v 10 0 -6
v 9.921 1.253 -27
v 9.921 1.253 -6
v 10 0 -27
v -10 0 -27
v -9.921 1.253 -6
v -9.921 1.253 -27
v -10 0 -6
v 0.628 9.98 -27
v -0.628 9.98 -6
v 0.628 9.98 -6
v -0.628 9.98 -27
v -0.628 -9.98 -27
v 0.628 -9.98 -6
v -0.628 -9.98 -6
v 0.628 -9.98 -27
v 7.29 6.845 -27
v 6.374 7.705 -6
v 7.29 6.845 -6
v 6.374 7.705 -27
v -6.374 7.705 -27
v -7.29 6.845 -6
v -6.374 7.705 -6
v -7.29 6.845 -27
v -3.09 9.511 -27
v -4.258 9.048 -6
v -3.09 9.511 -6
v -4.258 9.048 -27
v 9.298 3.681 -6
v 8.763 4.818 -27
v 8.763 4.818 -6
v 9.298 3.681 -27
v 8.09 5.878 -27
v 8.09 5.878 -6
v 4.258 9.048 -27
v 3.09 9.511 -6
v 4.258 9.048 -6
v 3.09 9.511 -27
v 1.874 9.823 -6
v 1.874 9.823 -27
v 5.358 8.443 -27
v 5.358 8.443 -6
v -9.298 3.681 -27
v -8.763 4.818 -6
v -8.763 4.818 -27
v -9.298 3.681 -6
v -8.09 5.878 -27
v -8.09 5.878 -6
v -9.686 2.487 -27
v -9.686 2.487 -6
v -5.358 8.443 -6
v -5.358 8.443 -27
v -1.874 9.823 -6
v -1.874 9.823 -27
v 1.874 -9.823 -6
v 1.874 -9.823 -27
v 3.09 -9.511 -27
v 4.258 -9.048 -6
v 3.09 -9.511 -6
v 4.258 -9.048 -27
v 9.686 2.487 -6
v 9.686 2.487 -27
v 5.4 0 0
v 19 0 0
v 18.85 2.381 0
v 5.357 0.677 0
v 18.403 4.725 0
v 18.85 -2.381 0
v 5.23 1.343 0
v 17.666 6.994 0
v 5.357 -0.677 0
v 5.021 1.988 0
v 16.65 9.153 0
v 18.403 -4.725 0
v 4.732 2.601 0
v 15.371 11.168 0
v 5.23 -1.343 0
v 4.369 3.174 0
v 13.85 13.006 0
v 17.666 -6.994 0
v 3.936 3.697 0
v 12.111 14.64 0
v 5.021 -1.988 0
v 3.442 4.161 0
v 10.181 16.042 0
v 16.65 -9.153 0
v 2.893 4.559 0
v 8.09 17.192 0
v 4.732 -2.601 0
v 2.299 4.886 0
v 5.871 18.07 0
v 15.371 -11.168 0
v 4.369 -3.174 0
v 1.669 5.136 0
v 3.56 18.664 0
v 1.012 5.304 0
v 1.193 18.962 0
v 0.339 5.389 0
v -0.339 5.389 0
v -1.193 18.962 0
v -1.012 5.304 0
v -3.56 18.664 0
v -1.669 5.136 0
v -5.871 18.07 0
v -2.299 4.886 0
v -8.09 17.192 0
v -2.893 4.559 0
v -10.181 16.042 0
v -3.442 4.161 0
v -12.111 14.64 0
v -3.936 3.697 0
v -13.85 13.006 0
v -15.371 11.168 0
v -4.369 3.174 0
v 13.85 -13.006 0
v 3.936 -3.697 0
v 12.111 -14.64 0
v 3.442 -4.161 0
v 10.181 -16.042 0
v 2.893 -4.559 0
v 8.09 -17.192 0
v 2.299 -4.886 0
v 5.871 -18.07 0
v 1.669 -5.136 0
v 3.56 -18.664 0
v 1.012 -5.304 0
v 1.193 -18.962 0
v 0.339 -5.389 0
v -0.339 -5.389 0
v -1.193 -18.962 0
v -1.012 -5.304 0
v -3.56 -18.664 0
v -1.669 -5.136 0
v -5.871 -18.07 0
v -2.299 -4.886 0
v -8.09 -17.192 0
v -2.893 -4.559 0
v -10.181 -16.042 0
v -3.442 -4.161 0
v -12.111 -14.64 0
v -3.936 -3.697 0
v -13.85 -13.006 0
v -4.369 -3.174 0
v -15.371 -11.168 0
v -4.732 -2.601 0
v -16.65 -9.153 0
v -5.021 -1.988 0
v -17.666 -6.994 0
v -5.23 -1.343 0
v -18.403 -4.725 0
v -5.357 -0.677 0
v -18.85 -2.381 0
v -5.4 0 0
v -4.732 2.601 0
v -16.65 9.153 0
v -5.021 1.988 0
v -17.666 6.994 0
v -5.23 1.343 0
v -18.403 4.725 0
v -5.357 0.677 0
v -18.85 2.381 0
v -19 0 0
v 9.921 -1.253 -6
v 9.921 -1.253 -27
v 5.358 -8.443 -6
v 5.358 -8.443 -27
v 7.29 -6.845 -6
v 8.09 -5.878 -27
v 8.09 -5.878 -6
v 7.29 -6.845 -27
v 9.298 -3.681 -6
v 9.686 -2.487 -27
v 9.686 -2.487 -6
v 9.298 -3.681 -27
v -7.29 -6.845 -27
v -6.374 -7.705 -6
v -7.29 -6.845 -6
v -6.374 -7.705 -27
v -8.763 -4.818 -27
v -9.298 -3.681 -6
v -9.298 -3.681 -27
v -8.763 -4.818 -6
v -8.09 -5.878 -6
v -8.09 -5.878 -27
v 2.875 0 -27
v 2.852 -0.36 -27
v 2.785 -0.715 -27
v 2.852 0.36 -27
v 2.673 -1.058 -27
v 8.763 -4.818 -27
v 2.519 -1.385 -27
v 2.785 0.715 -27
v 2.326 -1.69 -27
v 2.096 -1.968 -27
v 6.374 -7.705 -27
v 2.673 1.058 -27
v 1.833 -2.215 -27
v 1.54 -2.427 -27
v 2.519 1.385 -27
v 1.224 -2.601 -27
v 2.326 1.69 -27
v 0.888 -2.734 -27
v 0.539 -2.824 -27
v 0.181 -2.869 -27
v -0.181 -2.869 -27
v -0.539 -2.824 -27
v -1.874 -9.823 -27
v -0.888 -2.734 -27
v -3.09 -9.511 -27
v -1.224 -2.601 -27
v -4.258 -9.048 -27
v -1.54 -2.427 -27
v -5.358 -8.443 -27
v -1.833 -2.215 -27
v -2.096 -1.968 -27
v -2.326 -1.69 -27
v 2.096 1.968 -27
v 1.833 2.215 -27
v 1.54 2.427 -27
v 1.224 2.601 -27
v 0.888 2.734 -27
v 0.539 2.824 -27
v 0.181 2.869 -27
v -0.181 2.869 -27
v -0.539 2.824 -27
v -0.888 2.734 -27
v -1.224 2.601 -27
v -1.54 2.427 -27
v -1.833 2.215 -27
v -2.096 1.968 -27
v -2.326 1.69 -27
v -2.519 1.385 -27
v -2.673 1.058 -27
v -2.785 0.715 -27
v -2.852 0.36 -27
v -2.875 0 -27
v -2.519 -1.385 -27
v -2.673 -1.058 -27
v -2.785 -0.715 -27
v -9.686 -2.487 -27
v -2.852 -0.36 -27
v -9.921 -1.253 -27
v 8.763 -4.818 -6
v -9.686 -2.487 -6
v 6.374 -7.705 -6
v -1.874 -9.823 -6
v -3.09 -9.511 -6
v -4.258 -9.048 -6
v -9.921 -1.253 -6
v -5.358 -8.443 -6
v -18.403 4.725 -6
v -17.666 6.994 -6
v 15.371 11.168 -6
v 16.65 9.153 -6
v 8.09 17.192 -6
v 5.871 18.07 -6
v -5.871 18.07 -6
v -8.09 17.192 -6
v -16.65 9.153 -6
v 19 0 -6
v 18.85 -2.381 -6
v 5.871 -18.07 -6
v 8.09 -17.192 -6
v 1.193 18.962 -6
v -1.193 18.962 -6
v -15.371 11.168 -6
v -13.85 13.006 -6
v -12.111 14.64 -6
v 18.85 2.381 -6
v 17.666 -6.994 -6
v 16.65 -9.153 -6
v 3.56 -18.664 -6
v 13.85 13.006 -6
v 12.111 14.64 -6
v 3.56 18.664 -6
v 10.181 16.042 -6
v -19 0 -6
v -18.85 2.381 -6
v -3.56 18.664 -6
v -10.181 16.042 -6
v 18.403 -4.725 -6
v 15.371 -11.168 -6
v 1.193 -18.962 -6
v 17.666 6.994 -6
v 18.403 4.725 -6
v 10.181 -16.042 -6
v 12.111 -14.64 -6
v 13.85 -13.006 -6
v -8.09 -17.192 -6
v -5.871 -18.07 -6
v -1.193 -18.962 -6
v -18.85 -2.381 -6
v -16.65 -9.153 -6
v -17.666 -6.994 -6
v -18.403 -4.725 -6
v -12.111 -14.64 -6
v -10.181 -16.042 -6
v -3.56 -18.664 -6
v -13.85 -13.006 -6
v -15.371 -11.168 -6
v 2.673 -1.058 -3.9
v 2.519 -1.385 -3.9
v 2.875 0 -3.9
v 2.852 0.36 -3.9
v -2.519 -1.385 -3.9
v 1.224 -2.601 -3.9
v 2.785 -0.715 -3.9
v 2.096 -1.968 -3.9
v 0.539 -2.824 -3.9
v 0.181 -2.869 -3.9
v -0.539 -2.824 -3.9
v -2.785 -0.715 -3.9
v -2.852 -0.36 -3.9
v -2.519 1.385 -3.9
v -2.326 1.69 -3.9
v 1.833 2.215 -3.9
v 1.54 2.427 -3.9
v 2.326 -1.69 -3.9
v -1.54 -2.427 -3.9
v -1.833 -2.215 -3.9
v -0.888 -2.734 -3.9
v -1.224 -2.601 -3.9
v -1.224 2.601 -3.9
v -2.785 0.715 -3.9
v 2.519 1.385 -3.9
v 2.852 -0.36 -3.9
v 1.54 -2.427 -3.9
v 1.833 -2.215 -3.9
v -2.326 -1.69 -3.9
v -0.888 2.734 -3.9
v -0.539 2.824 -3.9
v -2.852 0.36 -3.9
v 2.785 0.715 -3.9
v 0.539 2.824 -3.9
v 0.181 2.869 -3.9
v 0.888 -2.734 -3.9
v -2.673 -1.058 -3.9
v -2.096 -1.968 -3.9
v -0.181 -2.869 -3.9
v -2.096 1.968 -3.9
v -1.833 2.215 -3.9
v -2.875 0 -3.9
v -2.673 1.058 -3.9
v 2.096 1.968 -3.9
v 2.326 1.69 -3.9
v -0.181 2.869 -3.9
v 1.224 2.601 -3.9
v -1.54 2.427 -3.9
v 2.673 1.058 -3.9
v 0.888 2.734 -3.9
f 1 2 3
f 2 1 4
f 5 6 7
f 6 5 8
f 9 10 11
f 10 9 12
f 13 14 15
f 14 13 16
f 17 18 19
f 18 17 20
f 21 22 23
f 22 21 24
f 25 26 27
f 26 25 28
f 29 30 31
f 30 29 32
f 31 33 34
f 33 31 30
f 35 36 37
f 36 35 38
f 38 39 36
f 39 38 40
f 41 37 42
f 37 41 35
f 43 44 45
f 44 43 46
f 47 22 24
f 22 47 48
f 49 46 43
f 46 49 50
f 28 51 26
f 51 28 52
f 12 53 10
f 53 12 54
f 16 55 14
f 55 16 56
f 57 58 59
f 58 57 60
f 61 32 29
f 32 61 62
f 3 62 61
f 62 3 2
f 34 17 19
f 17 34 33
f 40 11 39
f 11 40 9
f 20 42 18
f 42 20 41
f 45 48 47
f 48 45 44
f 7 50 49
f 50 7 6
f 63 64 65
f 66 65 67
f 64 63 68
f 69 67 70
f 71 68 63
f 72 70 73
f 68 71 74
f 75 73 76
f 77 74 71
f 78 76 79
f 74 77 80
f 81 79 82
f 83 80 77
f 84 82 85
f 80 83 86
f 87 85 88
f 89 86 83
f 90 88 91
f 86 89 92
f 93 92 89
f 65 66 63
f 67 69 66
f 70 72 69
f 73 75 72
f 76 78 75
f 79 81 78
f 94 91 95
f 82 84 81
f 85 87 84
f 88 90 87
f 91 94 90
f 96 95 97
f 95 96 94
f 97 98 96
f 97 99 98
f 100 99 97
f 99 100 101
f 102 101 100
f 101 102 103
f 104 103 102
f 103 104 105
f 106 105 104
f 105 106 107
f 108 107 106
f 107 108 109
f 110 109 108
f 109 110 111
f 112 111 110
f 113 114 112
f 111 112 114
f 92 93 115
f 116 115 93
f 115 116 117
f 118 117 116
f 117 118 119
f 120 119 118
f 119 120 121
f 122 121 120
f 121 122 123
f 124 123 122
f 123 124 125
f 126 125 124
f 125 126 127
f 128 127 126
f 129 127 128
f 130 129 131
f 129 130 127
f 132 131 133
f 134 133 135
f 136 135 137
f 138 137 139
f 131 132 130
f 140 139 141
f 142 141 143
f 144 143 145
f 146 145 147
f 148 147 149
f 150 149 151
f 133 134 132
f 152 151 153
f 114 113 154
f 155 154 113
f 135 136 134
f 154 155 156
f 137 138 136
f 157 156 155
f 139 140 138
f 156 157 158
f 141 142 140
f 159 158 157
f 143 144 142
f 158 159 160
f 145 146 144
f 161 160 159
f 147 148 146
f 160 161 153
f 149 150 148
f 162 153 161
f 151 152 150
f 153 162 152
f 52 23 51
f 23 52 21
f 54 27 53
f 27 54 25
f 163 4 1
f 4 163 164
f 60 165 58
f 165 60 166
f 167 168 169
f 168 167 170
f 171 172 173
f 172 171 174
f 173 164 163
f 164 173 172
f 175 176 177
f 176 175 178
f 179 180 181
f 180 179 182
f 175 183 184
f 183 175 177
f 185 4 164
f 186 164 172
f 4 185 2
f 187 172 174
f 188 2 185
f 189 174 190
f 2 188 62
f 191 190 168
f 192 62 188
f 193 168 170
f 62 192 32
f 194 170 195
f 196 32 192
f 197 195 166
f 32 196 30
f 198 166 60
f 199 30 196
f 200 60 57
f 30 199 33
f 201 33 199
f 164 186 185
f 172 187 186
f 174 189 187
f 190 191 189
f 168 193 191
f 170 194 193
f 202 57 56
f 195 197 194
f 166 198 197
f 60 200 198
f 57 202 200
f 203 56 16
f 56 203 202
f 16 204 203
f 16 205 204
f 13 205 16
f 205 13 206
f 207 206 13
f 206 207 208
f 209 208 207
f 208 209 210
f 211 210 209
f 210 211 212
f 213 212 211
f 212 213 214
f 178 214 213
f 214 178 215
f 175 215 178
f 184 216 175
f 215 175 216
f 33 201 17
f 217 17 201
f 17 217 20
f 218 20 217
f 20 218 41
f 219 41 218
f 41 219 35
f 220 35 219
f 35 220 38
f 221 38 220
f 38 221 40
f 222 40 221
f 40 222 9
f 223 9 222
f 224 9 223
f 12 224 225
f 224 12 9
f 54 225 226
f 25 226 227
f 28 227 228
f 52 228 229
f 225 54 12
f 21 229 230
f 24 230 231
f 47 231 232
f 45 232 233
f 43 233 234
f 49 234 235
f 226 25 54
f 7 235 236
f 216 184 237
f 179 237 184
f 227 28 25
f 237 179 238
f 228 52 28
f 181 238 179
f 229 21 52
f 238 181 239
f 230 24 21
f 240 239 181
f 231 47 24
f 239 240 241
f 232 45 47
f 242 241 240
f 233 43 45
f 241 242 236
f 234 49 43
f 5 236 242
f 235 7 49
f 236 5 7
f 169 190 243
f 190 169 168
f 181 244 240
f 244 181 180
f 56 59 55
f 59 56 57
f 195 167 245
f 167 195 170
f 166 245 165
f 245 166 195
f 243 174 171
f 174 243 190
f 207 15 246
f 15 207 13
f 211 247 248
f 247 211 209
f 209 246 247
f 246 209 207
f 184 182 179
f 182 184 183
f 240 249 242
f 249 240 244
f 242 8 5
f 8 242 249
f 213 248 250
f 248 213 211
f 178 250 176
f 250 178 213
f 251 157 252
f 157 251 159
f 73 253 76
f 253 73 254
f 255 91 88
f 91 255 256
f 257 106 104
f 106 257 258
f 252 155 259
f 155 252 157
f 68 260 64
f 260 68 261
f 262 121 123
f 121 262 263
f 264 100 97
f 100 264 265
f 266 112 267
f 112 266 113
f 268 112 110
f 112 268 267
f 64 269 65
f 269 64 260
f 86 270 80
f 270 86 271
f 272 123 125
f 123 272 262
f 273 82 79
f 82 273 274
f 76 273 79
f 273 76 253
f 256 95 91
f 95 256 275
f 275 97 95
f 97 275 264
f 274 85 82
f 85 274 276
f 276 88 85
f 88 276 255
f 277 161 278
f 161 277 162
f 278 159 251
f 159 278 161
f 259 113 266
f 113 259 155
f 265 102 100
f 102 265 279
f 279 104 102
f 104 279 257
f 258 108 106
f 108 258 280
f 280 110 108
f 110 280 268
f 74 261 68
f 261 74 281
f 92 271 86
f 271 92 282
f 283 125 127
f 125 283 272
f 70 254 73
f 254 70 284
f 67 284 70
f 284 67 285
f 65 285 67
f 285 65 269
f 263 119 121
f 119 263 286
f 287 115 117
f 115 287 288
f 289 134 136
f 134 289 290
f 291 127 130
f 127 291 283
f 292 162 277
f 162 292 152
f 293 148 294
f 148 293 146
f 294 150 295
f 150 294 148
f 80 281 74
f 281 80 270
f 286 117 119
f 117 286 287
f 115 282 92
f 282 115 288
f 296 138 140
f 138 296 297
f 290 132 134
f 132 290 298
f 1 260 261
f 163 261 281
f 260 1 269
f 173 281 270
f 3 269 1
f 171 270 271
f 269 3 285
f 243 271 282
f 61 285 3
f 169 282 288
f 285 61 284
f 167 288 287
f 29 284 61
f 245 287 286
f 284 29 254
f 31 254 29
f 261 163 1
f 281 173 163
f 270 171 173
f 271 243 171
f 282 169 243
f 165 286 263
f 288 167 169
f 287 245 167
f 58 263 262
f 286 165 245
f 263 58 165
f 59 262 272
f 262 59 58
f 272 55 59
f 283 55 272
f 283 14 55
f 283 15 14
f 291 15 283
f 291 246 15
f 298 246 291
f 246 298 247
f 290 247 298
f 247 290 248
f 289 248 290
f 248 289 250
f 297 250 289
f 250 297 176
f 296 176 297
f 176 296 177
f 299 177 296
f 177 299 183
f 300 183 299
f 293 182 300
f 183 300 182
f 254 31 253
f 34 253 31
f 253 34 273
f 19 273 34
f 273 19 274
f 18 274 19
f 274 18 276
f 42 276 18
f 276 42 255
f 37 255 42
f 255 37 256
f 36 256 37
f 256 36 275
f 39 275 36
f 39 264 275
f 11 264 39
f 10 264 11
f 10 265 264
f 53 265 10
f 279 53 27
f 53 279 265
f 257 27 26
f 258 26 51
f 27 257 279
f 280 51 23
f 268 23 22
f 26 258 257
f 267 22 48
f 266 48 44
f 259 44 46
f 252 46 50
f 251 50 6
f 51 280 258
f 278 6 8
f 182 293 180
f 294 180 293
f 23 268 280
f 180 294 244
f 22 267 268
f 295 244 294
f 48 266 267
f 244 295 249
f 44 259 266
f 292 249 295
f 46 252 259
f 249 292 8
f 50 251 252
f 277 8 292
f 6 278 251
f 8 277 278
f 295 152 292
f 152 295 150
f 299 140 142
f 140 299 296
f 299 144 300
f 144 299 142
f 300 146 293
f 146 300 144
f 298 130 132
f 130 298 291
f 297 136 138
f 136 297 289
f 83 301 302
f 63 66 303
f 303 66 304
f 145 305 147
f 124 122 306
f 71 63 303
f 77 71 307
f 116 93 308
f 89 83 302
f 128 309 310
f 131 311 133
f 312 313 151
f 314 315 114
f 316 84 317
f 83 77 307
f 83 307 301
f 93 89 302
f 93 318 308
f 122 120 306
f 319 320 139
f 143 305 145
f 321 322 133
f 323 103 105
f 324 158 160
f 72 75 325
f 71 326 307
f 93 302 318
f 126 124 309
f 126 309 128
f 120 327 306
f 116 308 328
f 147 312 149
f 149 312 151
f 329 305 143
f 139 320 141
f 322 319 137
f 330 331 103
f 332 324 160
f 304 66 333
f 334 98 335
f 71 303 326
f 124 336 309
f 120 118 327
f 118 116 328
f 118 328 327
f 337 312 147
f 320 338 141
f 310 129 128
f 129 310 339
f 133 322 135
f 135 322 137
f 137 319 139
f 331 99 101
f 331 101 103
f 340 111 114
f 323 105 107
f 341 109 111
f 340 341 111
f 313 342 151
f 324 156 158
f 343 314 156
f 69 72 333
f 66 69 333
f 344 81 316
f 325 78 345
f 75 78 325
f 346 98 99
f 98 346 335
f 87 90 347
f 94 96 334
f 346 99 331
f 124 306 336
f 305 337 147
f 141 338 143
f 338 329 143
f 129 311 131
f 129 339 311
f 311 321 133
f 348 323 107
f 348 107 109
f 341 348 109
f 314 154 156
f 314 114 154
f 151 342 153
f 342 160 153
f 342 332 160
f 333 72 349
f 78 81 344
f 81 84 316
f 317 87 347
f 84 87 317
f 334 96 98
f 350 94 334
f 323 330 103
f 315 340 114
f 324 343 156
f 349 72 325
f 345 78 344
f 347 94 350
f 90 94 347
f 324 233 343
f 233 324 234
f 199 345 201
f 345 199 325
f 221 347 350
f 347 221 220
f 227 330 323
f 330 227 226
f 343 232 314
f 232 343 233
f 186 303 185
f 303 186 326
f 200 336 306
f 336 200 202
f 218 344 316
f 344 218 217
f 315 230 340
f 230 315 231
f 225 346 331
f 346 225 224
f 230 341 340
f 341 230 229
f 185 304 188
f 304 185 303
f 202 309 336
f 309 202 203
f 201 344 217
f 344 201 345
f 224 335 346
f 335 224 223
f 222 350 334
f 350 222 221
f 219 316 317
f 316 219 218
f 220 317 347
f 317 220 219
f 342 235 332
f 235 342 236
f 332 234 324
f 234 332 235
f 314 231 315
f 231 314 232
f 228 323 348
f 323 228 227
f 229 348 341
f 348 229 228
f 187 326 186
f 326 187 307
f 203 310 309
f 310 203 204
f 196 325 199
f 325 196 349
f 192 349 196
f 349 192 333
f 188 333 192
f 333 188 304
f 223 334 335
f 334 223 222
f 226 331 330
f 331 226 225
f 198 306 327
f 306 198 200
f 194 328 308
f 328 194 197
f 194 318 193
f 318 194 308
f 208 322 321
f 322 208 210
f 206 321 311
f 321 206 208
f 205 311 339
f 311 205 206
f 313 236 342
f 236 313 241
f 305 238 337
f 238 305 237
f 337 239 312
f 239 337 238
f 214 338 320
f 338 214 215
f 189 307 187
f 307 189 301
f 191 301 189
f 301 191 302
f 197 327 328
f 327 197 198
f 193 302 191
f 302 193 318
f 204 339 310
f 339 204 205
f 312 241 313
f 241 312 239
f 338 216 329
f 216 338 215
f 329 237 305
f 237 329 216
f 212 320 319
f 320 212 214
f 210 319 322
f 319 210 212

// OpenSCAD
$fn = 50;


difference() {
	union() {
		translate(v = [0, 0, -27.0000000000]) {
			cylinder(h = 27, r = 10.0000000000);
		}
		translate(v = [0, 0, -6.0000000000]) {
			cylinder(h = 6, r = 19.0000000000);
		}
	}
	union() {
		translate(v = [0, 0, 0]) {
			rotate(a = [0, 0, 0]) {
				difference() {
					union() {
						#translate(v = [0, 0, -27.0000000000]) {
							cylinder(h = 27, r = 2.6000000000);
						}
						#translate(v = [0, 0, -3.9000000000]) {
							cylinder(h = 3.9000000000, r = 10.0000000000, r1 = 2.8750000000, r2 = 5.4000000000);
						}
						#translate(v = [0, 0, -27.0000000000]) {
							cylinder(h = 27, r = 2.8750000000);
						}
						#translate(v = [0, 0, -27.0000000000]) {
							cylinder(h = 27, r = 2.6000000000);
						}
					}
					union();
				}
			}
		}
	}
}
